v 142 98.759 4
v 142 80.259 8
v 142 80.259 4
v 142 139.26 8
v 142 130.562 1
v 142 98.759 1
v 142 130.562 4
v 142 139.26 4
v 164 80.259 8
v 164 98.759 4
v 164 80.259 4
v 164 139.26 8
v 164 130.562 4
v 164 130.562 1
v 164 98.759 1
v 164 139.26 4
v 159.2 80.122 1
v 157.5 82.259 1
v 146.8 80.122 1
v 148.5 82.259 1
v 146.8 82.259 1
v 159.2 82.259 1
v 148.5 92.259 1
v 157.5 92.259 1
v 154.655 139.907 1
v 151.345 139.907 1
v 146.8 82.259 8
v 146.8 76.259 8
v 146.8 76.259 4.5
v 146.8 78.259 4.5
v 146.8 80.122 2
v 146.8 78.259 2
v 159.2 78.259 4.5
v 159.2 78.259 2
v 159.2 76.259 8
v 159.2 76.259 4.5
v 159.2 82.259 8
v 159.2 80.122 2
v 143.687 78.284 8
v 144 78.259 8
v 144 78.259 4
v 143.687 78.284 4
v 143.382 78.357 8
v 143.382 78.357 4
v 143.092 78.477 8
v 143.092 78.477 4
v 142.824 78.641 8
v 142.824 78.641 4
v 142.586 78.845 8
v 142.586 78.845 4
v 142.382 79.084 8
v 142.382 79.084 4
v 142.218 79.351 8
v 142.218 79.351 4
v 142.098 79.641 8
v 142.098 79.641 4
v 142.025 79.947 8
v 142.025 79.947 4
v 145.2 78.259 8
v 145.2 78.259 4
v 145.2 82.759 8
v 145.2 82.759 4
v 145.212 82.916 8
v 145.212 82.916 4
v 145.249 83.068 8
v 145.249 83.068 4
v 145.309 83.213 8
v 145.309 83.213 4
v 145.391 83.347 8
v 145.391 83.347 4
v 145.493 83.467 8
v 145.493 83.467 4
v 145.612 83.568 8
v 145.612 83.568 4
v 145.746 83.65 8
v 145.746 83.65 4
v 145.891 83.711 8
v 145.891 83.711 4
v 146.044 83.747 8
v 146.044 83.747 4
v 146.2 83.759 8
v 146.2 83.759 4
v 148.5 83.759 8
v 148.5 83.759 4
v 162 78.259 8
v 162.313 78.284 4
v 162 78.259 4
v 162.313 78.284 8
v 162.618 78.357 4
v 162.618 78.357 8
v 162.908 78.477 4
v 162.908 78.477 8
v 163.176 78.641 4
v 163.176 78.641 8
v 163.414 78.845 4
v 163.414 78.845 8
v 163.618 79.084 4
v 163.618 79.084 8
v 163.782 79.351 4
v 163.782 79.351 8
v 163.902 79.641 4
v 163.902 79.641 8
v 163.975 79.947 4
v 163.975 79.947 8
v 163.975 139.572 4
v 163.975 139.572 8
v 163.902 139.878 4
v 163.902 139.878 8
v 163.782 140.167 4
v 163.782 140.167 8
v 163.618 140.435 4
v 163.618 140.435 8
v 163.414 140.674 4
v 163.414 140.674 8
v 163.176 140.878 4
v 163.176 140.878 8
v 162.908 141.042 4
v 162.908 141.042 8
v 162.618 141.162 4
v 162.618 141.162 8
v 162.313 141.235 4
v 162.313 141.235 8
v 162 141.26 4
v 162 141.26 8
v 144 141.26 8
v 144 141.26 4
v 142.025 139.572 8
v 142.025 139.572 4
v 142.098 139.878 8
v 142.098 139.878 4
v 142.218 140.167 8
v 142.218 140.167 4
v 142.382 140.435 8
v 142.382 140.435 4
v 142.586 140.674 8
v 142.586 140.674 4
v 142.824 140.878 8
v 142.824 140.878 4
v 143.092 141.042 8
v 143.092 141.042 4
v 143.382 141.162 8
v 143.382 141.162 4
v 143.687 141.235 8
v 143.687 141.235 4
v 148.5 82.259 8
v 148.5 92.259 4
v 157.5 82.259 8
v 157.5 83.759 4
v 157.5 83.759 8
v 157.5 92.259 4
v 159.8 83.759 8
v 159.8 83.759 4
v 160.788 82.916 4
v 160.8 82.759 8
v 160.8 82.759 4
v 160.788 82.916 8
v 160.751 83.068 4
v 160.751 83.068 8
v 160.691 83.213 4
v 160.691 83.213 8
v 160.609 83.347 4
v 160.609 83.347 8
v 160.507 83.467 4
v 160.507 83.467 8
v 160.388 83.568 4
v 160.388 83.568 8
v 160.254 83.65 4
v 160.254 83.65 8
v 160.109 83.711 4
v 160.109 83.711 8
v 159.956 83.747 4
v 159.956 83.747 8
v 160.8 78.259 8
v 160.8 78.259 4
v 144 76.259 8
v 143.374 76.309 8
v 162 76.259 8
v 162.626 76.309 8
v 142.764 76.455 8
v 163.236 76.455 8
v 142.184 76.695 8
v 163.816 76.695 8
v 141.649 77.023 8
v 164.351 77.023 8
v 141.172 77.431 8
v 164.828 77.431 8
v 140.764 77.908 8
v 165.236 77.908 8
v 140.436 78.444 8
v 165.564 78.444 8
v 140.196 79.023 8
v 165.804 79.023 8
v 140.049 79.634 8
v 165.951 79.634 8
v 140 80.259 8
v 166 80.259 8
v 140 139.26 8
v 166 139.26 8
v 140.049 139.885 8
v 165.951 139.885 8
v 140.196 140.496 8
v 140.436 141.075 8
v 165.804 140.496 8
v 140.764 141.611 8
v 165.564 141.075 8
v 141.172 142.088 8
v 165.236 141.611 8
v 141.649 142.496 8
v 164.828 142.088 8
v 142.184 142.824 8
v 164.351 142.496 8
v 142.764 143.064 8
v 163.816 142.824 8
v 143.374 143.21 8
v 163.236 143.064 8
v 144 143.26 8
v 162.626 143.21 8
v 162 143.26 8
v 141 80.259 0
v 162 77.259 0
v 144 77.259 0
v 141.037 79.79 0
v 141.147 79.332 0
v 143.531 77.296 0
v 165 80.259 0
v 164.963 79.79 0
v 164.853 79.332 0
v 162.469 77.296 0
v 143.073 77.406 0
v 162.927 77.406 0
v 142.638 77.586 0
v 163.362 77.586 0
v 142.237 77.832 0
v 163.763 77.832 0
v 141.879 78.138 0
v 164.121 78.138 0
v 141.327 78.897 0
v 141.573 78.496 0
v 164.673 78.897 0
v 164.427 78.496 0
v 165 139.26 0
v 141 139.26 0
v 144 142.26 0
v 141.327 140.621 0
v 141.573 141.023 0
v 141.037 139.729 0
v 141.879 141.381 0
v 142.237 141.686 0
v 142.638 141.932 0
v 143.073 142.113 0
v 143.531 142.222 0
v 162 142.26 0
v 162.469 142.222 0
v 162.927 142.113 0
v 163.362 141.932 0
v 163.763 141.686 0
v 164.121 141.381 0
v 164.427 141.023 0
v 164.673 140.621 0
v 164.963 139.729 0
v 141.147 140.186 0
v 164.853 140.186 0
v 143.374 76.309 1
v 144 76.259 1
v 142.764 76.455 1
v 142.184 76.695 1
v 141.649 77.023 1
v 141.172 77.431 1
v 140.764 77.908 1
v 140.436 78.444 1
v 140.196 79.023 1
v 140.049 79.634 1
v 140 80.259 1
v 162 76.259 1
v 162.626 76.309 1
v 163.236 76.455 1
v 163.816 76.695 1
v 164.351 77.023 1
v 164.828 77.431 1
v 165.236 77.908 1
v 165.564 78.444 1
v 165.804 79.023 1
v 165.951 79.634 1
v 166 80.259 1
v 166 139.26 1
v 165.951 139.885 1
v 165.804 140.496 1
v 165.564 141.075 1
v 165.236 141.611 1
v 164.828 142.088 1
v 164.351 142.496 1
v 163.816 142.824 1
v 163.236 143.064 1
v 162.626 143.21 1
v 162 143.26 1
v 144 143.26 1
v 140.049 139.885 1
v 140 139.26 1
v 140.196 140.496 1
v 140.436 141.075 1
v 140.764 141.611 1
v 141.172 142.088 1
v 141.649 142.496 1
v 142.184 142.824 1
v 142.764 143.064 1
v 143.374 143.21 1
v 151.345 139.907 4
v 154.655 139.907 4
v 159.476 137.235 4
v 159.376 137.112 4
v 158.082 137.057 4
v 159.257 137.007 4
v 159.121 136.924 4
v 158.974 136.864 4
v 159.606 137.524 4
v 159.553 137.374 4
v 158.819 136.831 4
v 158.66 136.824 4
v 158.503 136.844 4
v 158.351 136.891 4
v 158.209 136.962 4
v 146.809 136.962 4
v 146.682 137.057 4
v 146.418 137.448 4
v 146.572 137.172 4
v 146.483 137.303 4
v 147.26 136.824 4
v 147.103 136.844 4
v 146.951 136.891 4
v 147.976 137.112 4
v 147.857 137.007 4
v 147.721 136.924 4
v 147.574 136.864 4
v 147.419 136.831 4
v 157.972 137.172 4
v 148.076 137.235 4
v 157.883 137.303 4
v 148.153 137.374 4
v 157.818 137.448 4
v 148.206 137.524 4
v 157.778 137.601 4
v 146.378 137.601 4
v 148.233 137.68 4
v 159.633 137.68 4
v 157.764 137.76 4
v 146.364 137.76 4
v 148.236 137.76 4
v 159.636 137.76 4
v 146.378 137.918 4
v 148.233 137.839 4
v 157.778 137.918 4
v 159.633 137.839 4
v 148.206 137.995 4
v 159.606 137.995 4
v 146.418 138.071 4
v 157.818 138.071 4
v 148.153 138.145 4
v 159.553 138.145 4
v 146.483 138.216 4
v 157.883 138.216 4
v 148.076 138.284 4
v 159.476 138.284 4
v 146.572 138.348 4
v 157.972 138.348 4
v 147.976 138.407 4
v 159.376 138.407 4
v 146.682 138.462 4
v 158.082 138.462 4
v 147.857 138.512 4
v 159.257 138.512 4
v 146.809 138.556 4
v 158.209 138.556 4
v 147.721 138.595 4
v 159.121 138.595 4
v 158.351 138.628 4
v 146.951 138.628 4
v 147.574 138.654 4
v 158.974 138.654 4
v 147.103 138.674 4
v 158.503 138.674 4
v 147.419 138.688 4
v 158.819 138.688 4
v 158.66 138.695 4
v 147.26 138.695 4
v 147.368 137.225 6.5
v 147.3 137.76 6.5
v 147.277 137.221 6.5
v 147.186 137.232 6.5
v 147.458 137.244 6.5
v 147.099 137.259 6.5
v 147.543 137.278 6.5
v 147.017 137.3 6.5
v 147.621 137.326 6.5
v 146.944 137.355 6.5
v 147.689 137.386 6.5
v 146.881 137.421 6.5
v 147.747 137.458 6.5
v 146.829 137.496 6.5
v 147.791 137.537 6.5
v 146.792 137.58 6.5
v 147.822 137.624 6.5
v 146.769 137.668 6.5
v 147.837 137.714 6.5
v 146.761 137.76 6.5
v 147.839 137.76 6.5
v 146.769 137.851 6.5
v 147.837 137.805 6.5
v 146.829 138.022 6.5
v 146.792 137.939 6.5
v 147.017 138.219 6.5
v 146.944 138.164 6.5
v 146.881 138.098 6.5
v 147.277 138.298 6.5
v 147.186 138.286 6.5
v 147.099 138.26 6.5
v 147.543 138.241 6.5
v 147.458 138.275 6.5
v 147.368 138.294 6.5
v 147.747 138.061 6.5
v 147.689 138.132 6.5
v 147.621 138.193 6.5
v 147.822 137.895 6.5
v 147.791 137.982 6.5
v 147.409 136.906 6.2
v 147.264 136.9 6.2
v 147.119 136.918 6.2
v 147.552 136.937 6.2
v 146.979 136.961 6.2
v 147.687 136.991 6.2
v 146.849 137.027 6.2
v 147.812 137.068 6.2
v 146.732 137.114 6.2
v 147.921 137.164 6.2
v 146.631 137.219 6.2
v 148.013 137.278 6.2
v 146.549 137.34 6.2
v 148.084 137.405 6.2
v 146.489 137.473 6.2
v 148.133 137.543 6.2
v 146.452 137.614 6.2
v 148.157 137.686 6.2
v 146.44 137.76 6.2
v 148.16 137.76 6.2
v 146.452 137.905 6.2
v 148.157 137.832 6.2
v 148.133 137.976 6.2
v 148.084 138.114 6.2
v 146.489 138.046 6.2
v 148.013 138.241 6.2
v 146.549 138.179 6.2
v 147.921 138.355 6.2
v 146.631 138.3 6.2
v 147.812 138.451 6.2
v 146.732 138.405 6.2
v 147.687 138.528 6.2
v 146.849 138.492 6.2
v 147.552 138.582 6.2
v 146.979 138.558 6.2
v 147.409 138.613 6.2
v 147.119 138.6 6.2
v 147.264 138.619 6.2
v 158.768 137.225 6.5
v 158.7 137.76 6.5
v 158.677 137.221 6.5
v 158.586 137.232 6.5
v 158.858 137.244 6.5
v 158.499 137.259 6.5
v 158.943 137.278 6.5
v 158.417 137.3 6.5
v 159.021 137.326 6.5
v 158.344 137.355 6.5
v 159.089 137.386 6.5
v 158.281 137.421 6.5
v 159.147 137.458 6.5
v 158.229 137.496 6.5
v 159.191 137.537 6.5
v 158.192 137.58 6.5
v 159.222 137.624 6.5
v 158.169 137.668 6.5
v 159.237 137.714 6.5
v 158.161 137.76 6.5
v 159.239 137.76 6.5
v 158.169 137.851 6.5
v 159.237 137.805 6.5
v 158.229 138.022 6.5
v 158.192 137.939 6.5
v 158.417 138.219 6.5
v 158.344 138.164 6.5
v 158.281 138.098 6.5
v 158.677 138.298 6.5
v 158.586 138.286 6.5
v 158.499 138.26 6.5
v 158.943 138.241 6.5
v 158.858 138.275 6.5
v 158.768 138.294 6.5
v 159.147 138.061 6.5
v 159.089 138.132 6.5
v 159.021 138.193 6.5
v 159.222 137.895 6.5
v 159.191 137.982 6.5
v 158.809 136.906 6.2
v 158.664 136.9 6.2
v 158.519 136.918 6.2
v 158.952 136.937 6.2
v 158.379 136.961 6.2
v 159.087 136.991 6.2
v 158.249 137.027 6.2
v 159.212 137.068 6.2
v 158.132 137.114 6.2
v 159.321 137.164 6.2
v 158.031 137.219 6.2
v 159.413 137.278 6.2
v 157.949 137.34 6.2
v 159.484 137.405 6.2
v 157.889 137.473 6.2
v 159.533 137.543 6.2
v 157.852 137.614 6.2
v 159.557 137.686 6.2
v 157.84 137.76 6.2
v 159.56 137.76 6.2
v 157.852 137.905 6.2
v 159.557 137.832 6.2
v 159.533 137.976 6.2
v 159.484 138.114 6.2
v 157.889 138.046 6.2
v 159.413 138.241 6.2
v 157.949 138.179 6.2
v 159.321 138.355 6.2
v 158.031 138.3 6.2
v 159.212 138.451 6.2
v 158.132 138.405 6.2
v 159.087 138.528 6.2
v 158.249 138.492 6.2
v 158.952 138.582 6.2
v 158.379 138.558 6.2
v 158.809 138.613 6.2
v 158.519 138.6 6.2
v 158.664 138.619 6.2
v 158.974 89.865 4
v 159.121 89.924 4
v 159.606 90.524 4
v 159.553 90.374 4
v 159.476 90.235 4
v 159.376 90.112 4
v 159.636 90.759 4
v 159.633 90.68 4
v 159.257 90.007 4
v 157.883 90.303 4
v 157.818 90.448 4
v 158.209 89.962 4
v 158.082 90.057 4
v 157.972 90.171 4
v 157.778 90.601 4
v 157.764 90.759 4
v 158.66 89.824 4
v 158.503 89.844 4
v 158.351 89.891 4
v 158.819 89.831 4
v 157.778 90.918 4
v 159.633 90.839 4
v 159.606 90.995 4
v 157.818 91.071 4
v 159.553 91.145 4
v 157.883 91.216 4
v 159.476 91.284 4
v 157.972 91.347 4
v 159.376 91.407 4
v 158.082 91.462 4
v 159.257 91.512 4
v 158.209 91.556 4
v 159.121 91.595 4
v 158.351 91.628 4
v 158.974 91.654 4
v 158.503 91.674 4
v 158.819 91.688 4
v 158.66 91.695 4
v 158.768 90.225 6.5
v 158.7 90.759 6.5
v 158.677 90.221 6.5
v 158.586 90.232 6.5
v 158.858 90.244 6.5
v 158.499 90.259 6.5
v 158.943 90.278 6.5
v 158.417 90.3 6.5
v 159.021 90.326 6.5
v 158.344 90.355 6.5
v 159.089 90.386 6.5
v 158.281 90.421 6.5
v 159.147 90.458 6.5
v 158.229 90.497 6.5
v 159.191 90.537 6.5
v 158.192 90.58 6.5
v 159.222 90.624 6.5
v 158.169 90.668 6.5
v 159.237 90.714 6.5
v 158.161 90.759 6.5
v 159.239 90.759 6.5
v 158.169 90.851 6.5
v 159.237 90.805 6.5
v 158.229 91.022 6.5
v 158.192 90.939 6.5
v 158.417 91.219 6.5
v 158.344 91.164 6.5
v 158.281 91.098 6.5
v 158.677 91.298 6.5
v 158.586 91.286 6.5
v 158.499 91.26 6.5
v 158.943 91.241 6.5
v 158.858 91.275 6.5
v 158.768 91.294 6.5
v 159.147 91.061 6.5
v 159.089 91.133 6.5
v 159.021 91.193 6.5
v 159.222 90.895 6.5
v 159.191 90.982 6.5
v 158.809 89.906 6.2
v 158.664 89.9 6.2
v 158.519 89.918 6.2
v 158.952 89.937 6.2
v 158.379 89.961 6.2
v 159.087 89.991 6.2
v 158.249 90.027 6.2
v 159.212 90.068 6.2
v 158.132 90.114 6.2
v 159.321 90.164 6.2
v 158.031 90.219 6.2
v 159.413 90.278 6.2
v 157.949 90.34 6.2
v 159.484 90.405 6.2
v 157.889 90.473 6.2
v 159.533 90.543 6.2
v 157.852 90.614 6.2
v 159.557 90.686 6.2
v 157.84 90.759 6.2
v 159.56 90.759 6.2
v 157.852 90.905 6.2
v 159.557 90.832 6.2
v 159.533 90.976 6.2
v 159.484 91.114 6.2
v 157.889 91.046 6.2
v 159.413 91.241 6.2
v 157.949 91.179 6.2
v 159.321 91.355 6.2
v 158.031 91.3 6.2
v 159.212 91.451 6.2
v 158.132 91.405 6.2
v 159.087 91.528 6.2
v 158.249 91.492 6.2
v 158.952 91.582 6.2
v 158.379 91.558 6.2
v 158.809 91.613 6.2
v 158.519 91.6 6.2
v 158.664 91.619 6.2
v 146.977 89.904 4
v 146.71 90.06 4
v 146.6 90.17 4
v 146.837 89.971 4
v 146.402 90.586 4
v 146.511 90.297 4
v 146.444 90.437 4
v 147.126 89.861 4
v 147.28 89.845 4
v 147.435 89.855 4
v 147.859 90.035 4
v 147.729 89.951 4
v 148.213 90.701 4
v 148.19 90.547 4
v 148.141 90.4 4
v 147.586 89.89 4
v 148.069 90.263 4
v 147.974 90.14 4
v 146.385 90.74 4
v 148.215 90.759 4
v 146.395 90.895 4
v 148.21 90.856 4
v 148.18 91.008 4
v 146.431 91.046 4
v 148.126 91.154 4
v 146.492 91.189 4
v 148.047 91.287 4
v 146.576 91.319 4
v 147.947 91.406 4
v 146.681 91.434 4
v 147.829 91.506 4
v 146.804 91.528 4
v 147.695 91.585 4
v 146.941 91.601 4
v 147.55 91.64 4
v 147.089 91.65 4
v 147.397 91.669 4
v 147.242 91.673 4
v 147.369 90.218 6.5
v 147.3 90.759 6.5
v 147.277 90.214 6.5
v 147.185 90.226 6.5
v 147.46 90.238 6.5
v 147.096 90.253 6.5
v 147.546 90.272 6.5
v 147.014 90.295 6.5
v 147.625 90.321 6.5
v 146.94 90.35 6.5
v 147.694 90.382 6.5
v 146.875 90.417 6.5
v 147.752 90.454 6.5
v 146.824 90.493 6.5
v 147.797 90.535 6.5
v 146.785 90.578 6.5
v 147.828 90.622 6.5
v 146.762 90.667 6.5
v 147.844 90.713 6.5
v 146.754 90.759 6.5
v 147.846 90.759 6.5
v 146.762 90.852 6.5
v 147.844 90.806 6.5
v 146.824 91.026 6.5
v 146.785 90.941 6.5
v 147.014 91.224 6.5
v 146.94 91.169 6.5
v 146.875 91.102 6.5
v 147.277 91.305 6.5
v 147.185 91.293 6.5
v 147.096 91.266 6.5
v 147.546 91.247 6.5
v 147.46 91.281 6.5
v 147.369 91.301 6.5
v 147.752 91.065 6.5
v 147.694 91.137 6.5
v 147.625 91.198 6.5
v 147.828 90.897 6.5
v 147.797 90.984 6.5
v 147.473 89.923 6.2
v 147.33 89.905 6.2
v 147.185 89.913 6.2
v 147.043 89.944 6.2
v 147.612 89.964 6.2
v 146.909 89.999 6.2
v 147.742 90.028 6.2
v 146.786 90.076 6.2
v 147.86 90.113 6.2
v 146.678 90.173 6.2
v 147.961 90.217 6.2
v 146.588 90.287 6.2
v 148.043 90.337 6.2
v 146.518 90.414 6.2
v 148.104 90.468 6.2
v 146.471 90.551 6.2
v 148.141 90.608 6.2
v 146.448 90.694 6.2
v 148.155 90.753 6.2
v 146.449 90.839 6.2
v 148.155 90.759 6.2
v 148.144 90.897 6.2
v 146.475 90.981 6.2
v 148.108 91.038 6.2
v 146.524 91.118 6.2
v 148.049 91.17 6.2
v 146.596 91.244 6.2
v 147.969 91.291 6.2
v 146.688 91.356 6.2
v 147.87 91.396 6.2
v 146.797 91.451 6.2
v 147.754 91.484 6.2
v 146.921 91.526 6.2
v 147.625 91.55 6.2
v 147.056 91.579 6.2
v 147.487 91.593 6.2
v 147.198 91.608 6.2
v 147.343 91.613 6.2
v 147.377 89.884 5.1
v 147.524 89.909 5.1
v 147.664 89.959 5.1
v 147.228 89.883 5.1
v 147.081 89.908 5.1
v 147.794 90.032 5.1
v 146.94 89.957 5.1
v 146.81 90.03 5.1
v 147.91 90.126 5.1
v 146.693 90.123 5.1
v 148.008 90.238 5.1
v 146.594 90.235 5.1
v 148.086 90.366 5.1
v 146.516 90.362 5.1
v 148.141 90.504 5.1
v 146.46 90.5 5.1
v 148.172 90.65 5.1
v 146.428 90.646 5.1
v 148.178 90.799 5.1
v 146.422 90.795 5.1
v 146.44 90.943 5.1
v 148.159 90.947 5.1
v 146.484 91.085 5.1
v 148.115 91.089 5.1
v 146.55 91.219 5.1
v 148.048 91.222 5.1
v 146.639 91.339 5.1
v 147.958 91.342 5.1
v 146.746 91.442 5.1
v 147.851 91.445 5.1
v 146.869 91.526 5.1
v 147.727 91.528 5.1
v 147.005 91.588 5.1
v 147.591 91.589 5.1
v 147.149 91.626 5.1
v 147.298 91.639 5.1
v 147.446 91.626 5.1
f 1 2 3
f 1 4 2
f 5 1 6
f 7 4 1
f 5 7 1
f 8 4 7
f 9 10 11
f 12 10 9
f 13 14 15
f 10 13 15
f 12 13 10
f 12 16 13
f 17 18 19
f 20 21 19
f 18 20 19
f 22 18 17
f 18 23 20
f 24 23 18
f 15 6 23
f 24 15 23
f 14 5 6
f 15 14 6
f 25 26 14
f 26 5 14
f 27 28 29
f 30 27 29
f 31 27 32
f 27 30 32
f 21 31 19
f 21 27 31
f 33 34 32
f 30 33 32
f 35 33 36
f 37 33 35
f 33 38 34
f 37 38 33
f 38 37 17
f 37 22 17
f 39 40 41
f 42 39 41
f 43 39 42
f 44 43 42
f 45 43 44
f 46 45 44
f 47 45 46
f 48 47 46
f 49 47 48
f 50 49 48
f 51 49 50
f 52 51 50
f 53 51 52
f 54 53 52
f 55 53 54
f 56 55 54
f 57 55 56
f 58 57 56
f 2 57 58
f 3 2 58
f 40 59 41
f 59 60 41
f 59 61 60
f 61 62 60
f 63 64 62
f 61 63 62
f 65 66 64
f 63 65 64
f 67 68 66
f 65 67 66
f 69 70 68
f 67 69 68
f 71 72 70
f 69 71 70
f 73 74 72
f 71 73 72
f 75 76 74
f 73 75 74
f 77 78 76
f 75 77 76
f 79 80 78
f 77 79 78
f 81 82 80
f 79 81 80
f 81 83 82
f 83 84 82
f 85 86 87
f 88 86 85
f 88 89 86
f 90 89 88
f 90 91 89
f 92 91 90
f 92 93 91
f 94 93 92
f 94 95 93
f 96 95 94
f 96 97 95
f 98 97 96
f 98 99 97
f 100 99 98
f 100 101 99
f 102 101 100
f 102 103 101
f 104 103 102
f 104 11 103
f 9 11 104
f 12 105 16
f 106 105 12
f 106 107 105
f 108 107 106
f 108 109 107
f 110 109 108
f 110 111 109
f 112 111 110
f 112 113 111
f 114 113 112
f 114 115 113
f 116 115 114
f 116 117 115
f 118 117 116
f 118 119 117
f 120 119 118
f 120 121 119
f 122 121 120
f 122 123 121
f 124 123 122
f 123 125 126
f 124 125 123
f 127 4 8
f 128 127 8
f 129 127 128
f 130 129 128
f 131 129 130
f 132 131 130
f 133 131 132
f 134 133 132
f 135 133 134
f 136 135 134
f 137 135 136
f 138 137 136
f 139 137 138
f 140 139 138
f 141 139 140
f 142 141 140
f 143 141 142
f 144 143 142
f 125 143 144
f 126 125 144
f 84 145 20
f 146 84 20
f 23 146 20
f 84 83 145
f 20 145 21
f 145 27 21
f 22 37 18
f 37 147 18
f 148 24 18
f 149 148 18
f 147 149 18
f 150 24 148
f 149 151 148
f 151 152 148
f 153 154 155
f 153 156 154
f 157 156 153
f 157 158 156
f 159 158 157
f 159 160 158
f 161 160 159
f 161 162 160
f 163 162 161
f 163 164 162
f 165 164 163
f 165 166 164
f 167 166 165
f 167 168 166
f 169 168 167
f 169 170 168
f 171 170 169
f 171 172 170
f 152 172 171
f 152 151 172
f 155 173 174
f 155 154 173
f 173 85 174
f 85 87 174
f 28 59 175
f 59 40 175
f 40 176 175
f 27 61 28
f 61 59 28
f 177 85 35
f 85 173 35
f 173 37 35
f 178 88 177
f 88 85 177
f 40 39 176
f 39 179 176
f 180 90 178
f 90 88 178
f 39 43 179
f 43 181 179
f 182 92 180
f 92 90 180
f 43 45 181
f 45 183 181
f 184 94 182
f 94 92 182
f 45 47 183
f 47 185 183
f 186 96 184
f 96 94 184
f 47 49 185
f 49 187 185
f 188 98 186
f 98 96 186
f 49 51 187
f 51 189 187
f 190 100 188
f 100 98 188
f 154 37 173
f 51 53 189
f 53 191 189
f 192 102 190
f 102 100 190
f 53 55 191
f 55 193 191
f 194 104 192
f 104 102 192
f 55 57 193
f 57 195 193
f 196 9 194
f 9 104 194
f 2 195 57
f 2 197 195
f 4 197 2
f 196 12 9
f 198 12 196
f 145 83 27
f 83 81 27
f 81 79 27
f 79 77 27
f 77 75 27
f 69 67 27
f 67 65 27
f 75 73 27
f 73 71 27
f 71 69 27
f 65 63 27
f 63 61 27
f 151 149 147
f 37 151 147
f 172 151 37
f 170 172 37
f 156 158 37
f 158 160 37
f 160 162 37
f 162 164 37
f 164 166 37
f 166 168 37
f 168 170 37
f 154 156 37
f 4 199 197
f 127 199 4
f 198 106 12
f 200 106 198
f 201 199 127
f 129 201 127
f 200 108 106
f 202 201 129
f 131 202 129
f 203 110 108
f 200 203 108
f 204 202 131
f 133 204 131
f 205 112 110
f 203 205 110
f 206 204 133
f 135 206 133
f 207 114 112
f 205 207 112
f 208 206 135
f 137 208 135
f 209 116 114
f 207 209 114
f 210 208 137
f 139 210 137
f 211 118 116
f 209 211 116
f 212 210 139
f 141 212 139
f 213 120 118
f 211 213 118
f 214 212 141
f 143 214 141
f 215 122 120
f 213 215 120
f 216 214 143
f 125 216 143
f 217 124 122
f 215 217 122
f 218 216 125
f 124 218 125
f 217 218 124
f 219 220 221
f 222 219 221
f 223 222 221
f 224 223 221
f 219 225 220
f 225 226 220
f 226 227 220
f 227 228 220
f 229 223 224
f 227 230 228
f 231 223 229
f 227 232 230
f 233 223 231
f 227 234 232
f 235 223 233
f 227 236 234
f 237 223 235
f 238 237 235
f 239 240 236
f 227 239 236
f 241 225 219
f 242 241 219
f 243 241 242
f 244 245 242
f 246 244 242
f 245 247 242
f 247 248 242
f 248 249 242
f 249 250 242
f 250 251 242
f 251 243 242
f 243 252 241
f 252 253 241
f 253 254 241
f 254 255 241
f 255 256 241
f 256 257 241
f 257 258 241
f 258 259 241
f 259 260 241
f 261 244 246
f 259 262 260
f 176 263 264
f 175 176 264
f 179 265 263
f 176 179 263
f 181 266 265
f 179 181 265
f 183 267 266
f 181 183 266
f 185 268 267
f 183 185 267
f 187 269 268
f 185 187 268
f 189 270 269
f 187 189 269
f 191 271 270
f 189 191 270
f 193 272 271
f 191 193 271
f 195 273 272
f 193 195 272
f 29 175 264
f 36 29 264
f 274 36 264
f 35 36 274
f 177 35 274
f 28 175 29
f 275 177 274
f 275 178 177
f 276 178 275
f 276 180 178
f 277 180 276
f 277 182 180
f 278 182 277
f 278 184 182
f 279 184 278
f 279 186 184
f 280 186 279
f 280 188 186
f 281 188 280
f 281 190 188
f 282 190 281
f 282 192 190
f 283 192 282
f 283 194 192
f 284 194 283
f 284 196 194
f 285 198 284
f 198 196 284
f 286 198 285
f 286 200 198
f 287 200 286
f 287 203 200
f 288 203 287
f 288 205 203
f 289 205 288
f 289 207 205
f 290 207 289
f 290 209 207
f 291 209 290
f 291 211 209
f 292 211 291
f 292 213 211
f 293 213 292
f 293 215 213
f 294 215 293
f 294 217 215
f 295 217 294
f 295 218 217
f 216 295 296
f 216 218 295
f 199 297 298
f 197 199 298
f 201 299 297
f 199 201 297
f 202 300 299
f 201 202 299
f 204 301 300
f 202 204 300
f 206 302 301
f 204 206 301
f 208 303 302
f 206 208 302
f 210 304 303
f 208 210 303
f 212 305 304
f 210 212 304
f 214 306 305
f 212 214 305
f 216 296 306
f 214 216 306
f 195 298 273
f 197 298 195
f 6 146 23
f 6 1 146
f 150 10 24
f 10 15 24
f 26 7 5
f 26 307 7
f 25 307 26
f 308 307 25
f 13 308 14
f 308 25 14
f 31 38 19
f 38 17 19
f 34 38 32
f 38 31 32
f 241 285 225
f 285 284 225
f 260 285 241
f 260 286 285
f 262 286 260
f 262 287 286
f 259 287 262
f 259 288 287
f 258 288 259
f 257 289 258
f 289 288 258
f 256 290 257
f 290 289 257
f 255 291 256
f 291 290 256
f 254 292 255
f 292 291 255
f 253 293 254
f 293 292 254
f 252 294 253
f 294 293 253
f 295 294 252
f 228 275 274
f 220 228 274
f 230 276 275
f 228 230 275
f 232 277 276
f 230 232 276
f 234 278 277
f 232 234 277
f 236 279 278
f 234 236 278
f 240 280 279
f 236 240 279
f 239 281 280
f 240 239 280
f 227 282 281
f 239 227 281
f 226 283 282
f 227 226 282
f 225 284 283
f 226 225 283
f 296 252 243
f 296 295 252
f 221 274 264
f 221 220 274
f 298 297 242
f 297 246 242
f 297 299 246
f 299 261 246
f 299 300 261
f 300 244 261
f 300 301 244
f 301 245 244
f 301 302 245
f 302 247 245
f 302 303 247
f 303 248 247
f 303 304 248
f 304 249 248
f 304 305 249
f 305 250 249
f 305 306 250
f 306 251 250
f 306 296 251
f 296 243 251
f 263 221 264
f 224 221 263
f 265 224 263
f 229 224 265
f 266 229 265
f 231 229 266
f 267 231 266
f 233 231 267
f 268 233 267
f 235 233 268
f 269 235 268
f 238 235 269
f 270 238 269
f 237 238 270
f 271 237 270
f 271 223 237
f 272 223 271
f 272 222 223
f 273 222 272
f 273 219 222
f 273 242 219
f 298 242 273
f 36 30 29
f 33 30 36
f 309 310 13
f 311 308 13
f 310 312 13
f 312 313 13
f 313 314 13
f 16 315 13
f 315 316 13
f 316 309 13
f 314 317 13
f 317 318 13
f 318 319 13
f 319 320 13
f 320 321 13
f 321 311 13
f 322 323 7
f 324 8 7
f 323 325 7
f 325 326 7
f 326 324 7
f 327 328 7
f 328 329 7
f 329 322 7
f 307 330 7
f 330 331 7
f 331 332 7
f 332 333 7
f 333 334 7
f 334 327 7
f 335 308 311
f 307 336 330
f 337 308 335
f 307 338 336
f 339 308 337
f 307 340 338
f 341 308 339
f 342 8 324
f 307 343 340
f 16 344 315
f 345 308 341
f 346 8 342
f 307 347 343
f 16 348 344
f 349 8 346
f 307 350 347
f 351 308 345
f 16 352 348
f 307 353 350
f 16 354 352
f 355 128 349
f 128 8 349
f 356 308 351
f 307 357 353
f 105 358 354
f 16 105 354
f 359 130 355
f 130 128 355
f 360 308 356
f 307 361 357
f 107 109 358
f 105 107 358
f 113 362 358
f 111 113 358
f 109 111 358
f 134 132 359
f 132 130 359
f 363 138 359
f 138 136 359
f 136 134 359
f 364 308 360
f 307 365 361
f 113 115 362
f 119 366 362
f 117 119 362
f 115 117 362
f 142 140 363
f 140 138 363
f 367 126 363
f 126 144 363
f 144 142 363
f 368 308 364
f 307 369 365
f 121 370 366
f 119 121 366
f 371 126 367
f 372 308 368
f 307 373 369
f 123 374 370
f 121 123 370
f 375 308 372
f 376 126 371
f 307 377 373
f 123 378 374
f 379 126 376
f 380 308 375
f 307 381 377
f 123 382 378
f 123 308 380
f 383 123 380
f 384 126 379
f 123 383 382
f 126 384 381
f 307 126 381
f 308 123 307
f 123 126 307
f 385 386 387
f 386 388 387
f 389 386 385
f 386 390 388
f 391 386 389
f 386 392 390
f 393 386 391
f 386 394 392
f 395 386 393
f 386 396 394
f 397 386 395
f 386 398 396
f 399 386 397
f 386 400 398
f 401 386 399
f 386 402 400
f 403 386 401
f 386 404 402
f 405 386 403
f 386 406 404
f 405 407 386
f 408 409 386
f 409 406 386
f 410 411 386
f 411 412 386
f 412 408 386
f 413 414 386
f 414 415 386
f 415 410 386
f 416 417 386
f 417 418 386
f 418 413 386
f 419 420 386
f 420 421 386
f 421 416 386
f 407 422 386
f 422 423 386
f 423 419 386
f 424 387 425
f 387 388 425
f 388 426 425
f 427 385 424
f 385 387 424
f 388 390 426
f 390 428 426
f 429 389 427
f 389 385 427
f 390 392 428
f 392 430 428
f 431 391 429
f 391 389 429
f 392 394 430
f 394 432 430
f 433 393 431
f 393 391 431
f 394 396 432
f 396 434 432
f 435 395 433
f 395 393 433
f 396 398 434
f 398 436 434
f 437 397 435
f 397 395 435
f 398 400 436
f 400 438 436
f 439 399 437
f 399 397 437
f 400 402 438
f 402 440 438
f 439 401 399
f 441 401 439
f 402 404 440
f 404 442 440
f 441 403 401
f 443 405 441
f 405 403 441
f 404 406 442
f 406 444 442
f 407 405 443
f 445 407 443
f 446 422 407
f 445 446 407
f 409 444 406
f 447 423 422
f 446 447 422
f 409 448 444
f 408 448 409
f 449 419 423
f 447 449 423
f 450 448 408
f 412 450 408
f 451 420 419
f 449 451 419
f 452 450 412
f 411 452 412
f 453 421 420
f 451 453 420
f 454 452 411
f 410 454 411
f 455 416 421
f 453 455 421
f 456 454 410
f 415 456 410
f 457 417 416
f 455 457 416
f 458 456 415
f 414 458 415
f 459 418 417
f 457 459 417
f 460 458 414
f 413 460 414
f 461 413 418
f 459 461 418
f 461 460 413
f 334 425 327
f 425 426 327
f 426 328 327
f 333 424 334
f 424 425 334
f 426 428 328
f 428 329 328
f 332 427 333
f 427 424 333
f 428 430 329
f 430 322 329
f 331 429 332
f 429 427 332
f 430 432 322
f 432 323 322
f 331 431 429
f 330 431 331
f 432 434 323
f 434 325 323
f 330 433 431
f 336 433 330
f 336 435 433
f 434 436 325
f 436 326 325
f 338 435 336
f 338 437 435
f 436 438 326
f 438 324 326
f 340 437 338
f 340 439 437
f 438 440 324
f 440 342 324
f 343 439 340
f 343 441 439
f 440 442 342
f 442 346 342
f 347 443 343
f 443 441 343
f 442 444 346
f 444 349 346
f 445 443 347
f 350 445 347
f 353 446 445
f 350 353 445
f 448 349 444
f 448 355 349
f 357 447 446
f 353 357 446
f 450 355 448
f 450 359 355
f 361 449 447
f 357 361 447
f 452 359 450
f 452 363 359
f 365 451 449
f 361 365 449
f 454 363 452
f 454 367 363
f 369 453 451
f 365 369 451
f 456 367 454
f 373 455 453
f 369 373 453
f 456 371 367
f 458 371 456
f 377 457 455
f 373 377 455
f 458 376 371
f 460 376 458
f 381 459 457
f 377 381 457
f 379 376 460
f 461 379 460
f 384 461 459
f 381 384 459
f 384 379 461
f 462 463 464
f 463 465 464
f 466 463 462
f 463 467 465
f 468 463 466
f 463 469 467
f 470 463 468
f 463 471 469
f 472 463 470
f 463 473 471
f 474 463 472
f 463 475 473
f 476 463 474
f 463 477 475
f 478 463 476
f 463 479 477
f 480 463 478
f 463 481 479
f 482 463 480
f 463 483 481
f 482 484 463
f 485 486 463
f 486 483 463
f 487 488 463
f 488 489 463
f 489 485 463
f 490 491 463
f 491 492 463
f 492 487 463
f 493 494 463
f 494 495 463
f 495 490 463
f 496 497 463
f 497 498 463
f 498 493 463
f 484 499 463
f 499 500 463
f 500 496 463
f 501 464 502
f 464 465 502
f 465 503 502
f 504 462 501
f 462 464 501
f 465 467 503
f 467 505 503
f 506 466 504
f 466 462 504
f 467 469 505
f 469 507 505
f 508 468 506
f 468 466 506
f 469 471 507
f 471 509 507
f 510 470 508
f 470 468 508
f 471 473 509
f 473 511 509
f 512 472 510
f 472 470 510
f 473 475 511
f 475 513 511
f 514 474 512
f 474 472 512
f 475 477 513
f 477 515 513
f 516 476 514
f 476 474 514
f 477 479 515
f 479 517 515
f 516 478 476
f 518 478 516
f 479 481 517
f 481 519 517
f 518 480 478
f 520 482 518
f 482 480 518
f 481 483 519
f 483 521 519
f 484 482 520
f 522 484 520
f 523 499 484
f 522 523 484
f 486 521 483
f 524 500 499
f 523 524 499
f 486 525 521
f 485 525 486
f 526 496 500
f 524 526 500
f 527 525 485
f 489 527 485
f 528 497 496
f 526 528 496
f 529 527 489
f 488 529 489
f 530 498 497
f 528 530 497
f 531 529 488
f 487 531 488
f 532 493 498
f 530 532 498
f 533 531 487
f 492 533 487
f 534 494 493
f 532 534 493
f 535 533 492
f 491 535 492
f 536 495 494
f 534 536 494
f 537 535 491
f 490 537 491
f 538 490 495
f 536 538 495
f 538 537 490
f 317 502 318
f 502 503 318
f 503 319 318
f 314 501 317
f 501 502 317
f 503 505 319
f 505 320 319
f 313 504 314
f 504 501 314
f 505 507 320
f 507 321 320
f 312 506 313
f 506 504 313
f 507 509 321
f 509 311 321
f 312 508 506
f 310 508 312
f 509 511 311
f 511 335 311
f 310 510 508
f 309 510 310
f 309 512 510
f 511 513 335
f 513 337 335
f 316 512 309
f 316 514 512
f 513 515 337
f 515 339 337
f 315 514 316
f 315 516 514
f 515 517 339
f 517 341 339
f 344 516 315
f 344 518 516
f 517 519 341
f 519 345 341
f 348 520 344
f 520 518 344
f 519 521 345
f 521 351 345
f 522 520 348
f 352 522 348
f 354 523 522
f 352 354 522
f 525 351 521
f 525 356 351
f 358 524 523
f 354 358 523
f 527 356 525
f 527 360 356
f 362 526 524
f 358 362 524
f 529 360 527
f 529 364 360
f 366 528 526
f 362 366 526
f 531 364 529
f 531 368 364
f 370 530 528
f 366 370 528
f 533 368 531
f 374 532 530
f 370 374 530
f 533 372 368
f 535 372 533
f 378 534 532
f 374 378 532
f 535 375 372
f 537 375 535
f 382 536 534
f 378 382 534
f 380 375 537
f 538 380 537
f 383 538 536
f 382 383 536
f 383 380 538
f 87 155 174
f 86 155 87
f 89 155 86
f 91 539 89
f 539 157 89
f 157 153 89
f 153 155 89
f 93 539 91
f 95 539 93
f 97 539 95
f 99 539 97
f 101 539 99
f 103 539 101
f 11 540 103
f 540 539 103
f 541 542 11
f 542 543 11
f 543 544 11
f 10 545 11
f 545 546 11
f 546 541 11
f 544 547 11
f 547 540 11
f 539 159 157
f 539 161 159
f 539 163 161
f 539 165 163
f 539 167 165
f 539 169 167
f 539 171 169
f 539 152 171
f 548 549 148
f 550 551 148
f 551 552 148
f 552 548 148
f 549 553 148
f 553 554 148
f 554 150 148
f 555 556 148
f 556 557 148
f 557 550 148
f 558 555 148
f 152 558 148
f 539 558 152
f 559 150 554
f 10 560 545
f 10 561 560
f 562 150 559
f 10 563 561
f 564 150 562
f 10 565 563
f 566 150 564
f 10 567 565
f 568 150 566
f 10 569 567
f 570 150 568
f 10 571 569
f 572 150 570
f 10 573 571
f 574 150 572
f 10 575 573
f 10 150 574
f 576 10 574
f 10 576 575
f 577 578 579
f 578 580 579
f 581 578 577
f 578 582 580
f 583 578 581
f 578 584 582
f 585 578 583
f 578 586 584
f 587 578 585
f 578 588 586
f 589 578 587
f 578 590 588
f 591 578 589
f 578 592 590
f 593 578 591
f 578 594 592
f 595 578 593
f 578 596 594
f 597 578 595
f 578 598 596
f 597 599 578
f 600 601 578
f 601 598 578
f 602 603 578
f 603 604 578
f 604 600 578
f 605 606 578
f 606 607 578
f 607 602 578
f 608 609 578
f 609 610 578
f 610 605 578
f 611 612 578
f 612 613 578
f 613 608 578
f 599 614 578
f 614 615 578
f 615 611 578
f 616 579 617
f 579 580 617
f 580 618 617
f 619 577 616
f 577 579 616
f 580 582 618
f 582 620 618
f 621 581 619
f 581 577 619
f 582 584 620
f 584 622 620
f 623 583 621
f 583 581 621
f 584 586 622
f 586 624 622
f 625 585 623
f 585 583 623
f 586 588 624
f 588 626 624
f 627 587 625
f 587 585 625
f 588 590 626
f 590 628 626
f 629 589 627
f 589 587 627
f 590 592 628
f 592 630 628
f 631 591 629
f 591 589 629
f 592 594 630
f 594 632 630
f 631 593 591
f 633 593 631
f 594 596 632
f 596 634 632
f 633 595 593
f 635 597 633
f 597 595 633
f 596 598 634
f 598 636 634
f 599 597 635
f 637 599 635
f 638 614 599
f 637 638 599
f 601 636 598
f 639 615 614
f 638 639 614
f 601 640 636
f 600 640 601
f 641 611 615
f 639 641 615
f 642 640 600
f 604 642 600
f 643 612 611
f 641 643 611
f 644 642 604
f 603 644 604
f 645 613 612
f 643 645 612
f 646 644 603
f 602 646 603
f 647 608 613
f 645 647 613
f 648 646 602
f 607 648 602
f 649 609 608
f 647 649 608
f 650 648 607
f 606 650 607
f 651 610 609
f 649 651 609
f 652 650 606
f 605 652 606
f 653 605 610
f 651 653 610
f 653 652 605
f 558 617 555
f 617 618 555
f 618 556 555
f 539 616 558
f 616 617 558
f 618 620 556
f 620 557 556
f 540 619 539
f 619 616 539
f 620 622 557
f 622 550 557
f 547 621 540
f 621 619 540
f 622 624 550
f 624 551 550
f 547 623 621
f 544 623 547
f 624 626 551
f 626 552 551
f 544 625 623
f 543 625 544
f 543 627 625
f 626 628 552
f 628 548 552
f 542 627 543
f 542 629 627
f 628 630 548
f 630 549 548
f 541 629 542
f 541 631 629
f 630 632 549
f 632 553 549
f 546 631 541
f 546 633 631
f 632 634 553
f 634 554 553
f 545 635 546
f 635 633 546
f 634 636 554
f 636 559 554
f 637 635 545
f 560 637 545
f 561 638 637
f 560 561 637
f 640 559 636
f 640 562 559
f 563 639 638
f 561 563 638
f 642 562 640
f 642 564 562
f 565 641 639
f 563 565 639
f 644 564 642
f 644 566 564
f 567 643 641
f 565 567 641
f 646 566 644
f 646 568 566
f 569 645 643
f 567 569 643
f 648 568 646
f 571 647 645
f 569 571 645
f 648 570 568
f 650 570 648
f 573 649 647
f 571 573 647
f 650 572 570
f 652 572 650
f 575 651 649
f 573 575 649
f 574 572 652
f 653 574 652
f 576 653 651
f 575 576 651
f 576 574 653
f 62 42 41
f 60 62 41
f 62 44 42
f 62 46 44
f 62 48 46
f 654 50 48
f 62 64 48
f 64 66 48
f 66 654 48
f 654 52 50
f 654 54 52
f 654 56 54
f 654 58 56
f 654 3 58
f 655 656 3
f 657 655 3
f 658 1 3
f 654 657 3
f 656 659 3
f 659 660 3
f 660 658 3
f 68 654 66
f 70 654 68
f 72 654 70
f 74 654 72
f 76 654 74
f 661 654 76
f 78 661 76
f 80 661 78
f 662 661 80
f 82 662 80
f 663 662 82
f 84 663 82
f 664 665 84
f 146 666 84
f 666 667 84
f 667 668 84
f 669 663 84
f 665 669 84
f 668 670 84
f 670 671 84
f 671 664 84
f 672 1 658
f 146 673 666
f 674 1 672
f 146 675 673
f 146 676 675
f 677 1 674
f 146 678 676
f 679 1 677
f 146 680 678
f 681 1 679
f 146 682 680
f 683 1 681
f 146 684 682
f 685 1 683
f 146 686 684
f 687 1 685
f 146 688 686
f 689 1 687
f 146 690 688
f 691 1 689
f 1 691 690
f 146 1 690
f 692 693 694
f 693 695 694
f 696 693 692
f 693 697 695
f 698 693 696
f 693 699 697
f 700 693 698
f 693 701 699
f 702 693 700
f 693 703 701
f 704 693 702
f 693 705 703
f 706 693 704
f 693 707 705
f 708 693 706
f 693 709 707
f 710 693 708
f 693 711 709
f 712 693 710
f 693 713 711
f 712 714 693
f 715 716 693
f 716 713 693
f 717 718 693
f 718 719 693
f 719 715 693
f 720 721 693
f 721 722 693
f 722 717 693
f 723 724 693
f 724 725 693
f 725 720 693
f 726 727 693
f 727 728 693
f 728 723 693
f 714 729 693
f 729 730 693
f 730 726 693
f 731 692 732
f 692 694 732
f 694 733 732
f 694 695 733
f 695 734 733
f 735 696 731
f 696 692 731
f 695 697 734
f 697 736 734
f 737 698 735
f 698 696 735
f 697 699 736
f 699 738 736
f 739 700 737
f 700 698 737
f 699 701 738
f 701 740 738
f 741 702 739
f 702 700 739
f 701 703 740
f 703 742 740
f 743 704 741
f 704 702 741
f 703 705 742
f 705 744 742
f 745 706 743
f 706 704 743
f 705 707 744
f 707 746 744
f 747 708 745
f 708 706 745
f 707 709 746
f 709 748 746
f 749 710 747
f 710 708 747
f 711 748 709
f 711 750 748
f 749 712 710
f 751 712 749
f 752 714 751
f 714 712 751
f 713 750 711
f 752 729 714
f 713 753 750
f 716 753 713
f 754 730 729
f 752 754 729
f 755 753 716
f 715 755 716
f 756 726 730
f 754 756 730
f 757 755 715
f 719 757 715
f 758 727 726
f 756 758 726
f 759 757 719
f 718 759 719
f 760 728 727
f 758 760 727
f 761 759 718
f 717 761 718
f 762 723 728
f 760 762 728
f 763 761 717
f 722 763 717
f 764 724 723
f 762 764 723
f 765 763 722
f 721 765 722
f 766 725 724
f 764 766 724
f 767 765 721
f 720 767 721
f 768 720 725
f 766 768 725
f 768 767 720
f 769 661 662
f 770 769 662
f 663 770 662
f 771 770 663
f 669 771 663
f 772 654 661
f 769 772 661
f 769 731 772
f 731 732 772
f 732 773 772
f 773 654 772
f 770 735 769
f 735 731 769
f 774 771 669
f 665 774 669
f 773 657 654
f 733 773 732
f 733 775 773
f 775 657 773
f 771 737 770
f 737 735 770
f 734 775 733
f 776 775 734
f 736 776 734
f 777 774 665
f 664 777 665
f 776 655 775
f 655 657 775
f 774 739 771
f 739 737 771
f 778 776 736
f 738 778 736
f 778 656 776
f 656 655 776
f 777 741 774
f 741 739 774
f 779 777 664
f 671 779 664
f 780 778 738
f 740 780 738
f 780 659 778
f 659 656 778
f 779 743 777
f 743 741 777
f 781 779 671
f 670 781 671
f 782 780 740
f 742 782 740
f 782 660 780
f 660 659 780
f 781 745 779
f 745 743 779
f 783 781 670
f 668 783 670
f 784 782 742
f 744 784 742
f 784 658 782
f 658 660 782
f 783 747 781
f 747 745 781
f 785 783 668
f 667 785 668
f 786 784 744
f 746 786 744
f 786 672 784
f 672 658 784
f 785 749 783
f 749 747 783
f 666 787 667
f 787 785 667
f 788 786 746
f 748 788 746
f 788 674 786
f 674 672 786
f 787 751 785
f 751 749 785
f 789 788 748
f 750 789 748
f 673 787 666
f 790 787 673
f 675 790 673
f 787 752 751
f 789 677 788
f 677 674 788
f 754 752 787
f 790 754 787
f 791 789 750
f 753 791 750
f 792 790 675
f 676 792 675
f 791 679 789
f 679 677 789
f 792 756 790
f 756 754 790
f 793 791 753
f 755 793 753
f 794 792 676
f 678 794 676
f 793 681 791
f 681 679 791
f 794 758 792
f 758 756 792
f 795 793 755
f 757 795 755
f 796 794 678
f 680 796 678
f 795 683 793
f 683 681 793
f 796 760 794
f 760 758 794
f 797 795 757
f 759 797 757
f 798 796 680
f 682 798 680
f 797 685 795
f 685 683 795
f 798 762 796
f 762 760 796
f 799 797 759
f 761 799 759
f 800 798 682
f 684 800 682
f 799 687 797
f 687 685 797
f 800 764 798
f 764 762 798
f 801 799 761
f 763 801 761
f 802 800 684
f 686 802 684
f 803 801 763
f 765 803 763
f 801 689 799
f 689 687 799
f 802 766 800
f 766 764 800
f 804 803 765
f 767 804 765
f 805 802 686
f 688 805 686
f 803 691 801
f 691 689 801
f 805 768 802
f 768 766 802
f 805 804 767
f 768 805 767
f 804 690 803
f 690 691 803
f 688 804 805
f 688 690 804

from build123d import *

# Parameters (mm, degrees)
BOSS_EXTRUDE1_DEPTH = 8
BOSS_EXTRUDE2_DEPTH = 1
SKETCH3_W           = 12.400024414
SKETCH3_H           = 1.862224361
BOSS_EXTRUDE3_DEPTH = 1
SKETCH6_R           = 0.85
SKETCH5_R           = 1.004760965
SKETCH5_4_R         = 1.00476126
SKETCH6_4_R         = 0.85
SKETCH6_6_R         = 0.85
SKETCH5_6_R         = 1.004762062
CHAMFER1_SIZE       = 0.3
CHAMFER1_SIZE_2     = 0.310868543
CHAMFER1_SIZE_3     = 0.304224899
CHAMFER1_SIZE_4     = 0.310868565
CHAMFER1_SIZE_5     = 0.310868624
CHAMFER2_SIZE       = 1
SKETCH7_W           = 12.400024414
SKETCH7_H           = 3.5
CUT_EXTRUDE1_DEPTH  = 3
BOSS_EXTRUDE4_DEPTH = 2


with BuildPart() as part:
    # Sketch1 → Boss-Extrude1 (new body)
    with BuildSketch(Plane.XY):
        with BuildLine():
            Line((162.000045776, 76.259460449), (144.000045776, 76.259460449))
            ThreePointArc((144.000045776, 76.259460449), (141.171618652, 77.431033324), (140.000045776, 80.259460449))
            Line((140.000045776, 80.259460449), (140.000045776, 139.259460449))
            ThreePointArc((140.000045776, 139.259460449), (141.171618652, 142.087887574), (144.000045776, 143.259460449))
            Line((144.000045776, 143.259460449), (162.000045776, 143.259460449))
            ThreePointArc((162.000045776, 143.259460449), (164.828472901, 142.087887574), (166.000045776, 139.259460449))
            Line((166.000045776, 139.259460449), (166.000045776, 80.259460449))
            ThreePointArc((166.000045776, 80.259460449), (164.828472901, 77.431033324), (162.000045776, 76.259460449))
        make_face()
        with BuildLine():
            Line((162.000045776, 78.259460449), (160.800048828, 78.259460449))
            Line((160.800048828, 78.259460449), (160.800048828, 82.759460449))
            ThreePointArc((160.800048828, 82.759460449), (160.507155609, 83.46656723), (159.800048828, 83.759460449))
            Line((159.800048828, 83.759460449), (157.500045776, 83.759460449))
            Line((157.500045776, 83.759460449), (157.500045776, 82.259460449))
            Line((157.500045776, 82.259460449), (159.200057983, 82.259460449))
            Line((159.200057983, 82.259460449), (159.200057983, 78.259460449))
            Line((159.200057983, 78.259460449), (146.800033569, 78.259460449))
            Line((146.800033569, 78.259460449), (146.800033569, 82.259460449))
            Line((146.800033569, 82.259460449), (148.500045776, 82.259460449))
            Line((148.500045776, 82.259460449), (148.500045776, 83.759460449))
            Line((148.500045776, 83.759460449), (146.200042725, 83.759460449))
            ThreePointArc((146.200042725, 83.759460449), (145.492935943, 83.46656723), (145.200042725, 82.759460449))
            Line((145.200042725, 82.759460449), (145.200042725, 78.259460449))
            Line((145.200042725, 78.259460449), (144.000045776, 78.259460449))
            ThreePointArc((144.000045776, 78.259460449), (142.585832214, 78.845246887), (142.000045776, 80.259460449))
            Line((142.000045776, 80.259460449), (142.000045776, 139.259460449))
            ThreePointArc((142.000045776, 139.259460449), (142.585832214, 140.673674012), (144.000045776, 141.259460449))
            Line((144.000045776, 141.259460449), (162.000045776, 141.259460449))
            ThreePointArc((162.000045776, 141.259460449), (163.414259339, 140.673674012), (164.000045776, 139.259460449))
            Line((164.000045776, 139.259460449), (164.000045776, 80.259460449))
            ThreePointArc((164.000045776, 80.259460449), (163.414259339, 78.845246887), (162.000045776, 78.259460449))
        make_face(mode=Mode.SUBTRACT)
    extrude(amount=BOSS_EXTRUDE1_DEPTH)

    # Sketch2 → Boss-Extrude2 (add)
    with BuildSketch(Plane(origin=(0, 0, 0), x_dir=(-1, 0, 0), z_dir=(0, 0, -1))):
        with BuildLine():
            Line((-140.000045776, 80.259460449), (-140.000045776, 139.259460449))
            ThreePointArc((-140.000045776, 139.259460449), (-141.171618652, 142.087887574), (-144.000045776, 143.259460449))
            Line((-144.000045776, 143.259460449), (-162.000045776, 143.259460449))
            ThreePointArc((-162.000045776, 143.259460449), (-164.828472901, 142.087887574), (-166.000045776, 139.259460449))
            Line((-166.000045776, 139.259460449), (-166.000045776, 80.259460449))
            ThreePointArc((-166.000045776, 80.259460449), (-164.828472901, 77.431033324), (-162.000045776, 76.259460449))
            Line((-162.000045776, 76.259460449), (-144.000045776, 76.259460449))
            ThreePointArc((-144.000045776, 76.259460449), (-141.171618652, 77.431033324), (-140.000045776, 80.259460449))
        make_face()
    extrude(amount=-BOSS_EXTRUDE2_DEPTH)

    # Sketch3 → Boss-Extrude3 (add)
    with BuildSketch(Plane.XY.offset(1)):
        with BuildLine():
            Line((142.000045776, 130.561752319), (151.345153809, 139.906860352))
            Line((151.345153809, 139.906860352), (154.654937744, 139.906860352))
            Line((154.654937744, 139.906860352), (164.000045776, 130.561736378))
            Line((164.000045776, 130.561736378), (164.000045776, 139.259460449))
            ThreePointArc((164.000045776, 139.259460449), (163.414259339, 140.673674012), (162.000045776, 141.259460449))
            Line((162.000045776, 141.259460449), (144.000045776, 141.259460449))
            ThreePointArc((144.000045776, 141.259460449), (142.585832214, 140.673674012), (142.000045776, 139.259460449))
            Line((142.000045776, 139.259460449), (142.000045776, 130.561752319))
        make_face()
        with BuildLine():
            Line((142.000045776, 98.75945232), (148.500045776, 92.259460449))
            Line((148.500045776, 92.259460449), (148.500045776, 83.759460449))
            Line((148.500045776, 83.759460449), (146.200042725, 83.759460449))
            ThreePointArc((146.200042725, 83.759460449), (145.492935943, 83.46656723), (145.200042725, 82.759460449))
            Line((145.200042725, 82.759460449), (145.200042725, 78.259460449))
            Line((145.200042725, 78.259460449), (144.000045776, 78.259460449))
            ThreePointArc((144.000045776, 78.259460449), (142.585832214, 78.845246887), (142.000045776, 80.259460449))
            Line((142.000045776, 80.259460449), (142.000045776, 98.75945232))
        make_face()
        with BuildLine():
            Line((164.000045776, 80.259460449), (164.000045776, 98.759468579))
            Line((164.000045776, 98.759468579), (157.500045776, 92.259460449))
            Line((157.500045776, 92.259460449), (157.500045776, 83.759460449))
            Line((157.500045776, 83.759460449), (159.800048828, 83.759460449))
            ThreePointArc((159.800048828, 83.759460449), (160.507155609, 83.46656723), (160.800048828, 82.759460449))
            Line((160.800048828, 82.759460449), (160.800048828, 78.259460449))
            Line((160.800048828, 78.259460449), (162.000045776, 78.259460449))
            ThreePointArc((162.000045776, 78.259460449), (163.414259339, 78.845246887), (164.000045776, 80.259460449))
        make_face()
        with Locations((153.000045776, 79.190572629)):
            Rectangle(SKETCH3_W, SKETCH3_H)
    extrude(amount=BOSS_EXTRUDE3_DEPTH)

    # Sketch6 → Loft2 section 0
    with BuildSketch(Plane.XY.offset(6.5)):
        with Locations((158.700035969, 90.759458357)):
            Circle(SKETCH6_R)
    # Sketch5 → Loft2 section 1
    with BuildSketch(Plane.XY.offset(2)):
        with Locations((158.700035969, 90.759458357)):
            Circle(SKETCH5_R)
    loft()

    # Loft3: read off the stored shape, not the designer's step
    # Loft3: loft between two sections, ruled curve by curve
    loft3_from = [
        Edge.make_bspline([(147.444109371, 89.765077917, 2), (149.432868581, 90.053221641, 2), (149.144724857, 92.041980852, 2), (147.155965647, 91.753837127, 2), (145.167206436, 91.465693402, 2), (145.455350161, 89.476934192, 2), (147.444109371, 89.765077917, 2)], [0, 0, 0, 0, 0.5, 0.5, 0.5, 1, 1, 1, 1], 3, [1, 0.333333333, 0.333333333, 1, 0.333333333, 0.333333333, 1]),
    ]
    loft3_to = [
        Edge.make_bspline([(147.763577739, 90.046975624, 6.5), (149.188541535, 90.974056083, 6.5), (148.261461076, 92.39901988, 6.5), (146.836497279, 91.47193942, 6.5), (145.411533483, 90.544858961, 6.5), (146.338613942, 89.119895164, 6.5), (147.763577739, 90.046975624, 6.5)], [0, 0, 0, 0, 0.5, 0.5, 0.5, 1, 1, 1, 1], 3, [1, 0.333333333, 0.333333333, 1, 0.333333333, 0.333333333, 1]),
    ]
    loft3 = Solid(Shell([*[Face.make_surface_from_curves(loft3_from[k], loft3_to[k]) for k in range(1)], Face(Wire(loft3_from)), Face(Wire(loft3_to))]))
    add(loft3)

    # Sketch5<4> → Loft4 section 0
    with BuildSketch(Plane.XY.offset(2)):
        with Locations((158.700040262, 137.759458688)):
            Circle(SKETCH5_4_R)
    # Sketch6<4> → Loft4 section 1
    with BuildSketch(Plane.XY.offset(6.5)):
        with Locations((158.700040262, 137.759458688)):
            Circle(SKETCH6_4_R)
    loft()

    # Sketch6<6> → Loft5 section 0
    with BuildSketch(Plane.XY.offset(6.5)):
        with Locations((147.300037543, 137.759459976)):
            Circle(SKETCH6_6_R)
    # Sketch5<6> → Loft5 section 1
    with BuildSketch(Plane.XY.offset(2)):
        with Locations((147.300037543, 137.759459976)):
            Circle(SKETCH5_6_R)
    loft()

    # Chamfer1
    # the kernel refuses this chamfer: 0.310868624, 0.310868565, 0.310868543, 0.304224899, 0.3 mm, written as the material it takes off along each edge
    with BuildSketch(Plane(origin=(158.700035969, 90.759458357, 6.5), x_dir=(1, 0, 0), z_dir=(0, -1, 0))) as chamfer1_piece_1:
        Polygon((0.85 + CHAMFER1_SIZE * 0.0343710051368, -CHAMFER1_SIZE * 0.999409142447), (0.85 - CHAMFER1_SIZE_2 * 1.00000000105, 0), (0.85, 0), align=None)
    revolve(axis=Axis((158.700035969, 90.759458357, 6.5), (0, 0, 1)), mode=Mode.SUBTRACT)
    with BuildSketch(Plane(origin=(147.300037509, 90.759457522, 6.5), x_dir=(0.5453414472456917, -0.83821399768554, 0), z_dir=(-0.83821399768554, -0.5453414472456917, 0))) as chamfer1_piece_2:
        with BuildLine():
            Line((0.85 + CHAMFER1_SIZE * 0.0153320660096, -CHAMFER1_SIZE * 0.999882456968), (0.85 - CHAMFER1_SIZE_3, 0))
            Line((0.85 - CHAMFER1_SIZE_3, 0), (0.85, 0))
            ThreePointArc((0.85, 0), (0.852250758, -0.154289578), (0.85 + CHAMFER1_SIZE * 0.0153320660096, -CHAMFER1_SIZE * 0.999882456968))
        make_face()
    revolve(axis=Axis((147.300037509, 90.759457522, 6.5), (0, 0, 1)), mode=Mode.SUBTRACT)
    with BuildSketch(Plane(origin=(158.700040262, 137.759458688, 6.5), x_dir=(1, 0, 0), z_dir=(0, -1, 0))) as chamfer1_piece_3:
        Polygon((0.85 + CHAMFER1_SIZE * 0.0343710705269, -CHAMFER1_SIZE * 0.999409140198), (0.85 - CHAMFER1_SIZE_4, 0), (0.85, 0), align=None)
    revolve(axis=Axis((158.700040262, 137.759458688, 6.5), (0, 0, 1)), mode=Mode.SUBTRACT)
    with BuildSketch(Plane(origin=(147.300037543, 137.759459976, 6.5), x_dir=(1, 0, 0), z_dir=(0, -1, 0))) as chamfer1_piece_4:
        Polygon((0.85 + CHAMFER1_SIZE * 0.0343712486304, -CHAMFER1_SIZE * 0.999409134073), (0.85 - CHAMFER1_SIZE_5 * 1.00000000148, 0), (0.85, 0), align=None)
    revolve(axis=Axis((147.300037543, 137.759459976, 6.5), (0, 0, 1)), mode=Mode.SUBTRACT)

    # Chamfer2
    chamfer2_edges = [part.edges().sort_by_distance(p)[0] for p in [
        (166.000045776, 109.759460449, 0),
        (164.828472901, 77.431033324, 0),
        (153.000045776, 76.259460449, 0),
        (141.171618652, 77.431033324, 0),
        (140.000045776, 109.759460449, 0),
        (141.171618652, 142.087887574, 0),
        (153.000045776, 143.259460449, 0),
        (164.828472901, 142.087887574, 0),
    ]]
    chamfer(chamfer2_edges, length=CHAMFER2_SIZE)

    # Sketch7 → Cut-Extrude1 (cut)
    with BuildSketch(Plane.XZ.offset(-76.259460449)):
        with Locations((153.000045776, 6.25)):
            Rectangle(SKETCH7_W, SKETCH7_H)
    extrude(amount=-CUT_EXTRUDE1_DEPTH, mode=Mode.SUBTRACT)

    # Sketch8 → Boss-Extrude4 (add)
    with BuildSketch(Plane.XY.offset(2)):
        with BuildLine():
            Line((162.000045776, 141.259460449), (144.000045776, 141.259460449))
            ThreePointArc((144.000045776, 141.259460449), (142.585832214, 140.673674012), (142.000045776, 139.259460449))
            Line((142.000045776, 139.259460449), (142.000045776, 130.561752319))
            Line((142.000045776, 130.561752319), (151.345153809, 139.906860352))
            Line((151.345153809, 139.906860352), (154.654937744, 139.906860352))
            Line((154.654937744, 139.906860352), (164.000045776, 130.561736378))
            Line((164.000045776, 130.561736378), (164.000045776, 139.259460449))
            ThreePointArc((164.000045776, 139.259460449), (163.414259339, 140.673674012), (162.000045776, 141.259460449))
        make_face()
        with BuildLine():
            Line((164.000045776, 80.259460449), (164.000045776, 98.759468579))
            Line((164.000045776, 98.759468579), (157.500045776, 92.259460449))
            Line((157.500045776, 92.259460449), (157.500045776, 83.759460449))
            Line((157.500045776, 83.759460449), (159.800048828, 83.759460449))
            ThreePointArc((159.800048828, 83.759460449), (160.507155609, 83.46656723), (160.800048828, 82.759460449))
            Line((160.800048828, 82.759460449), (160.800048828, 78.259460449))
            Line((160.800048828, 78.259460449), (162.000045776, 78.259460449))
            ThreePointArc((162.000045776, 78.259460449), (163.414259339, 78.845246887), (164.000045776, 80.259460449))
        make_face()
        with BuildLine():
            Line((146.200042725, 83.759460449), (148.500045776, 83.759460449))
            Line((148.500045776, 83.759460449), (148.500045776, 92.259460449))
            Line((148.500045776, 92.259460449), (142.000045776, 98.75945232))
            Line((142.000045776, 98.75945232), (142.000045776, 80.259460449))
            ThreePointArc((142.000045776, 80.259460449), (142.585832214, 78.845246887), (144.000045776, 78.259460449))
            Line((144.000045776, 78.259460449), (145.200042725, 78.259460449))
            Line((145.200042725, 78.259460449), (145.200042725, 82.759460449))
            ThreePointArc((145.200042725, 82.759460449), (145.492935943, 83.46656723), (146.200042725, 83.759460449))
        make_face()
    extrude(amount=BOSS_EXTRUDE4_DEPTH)


solid = part.part
